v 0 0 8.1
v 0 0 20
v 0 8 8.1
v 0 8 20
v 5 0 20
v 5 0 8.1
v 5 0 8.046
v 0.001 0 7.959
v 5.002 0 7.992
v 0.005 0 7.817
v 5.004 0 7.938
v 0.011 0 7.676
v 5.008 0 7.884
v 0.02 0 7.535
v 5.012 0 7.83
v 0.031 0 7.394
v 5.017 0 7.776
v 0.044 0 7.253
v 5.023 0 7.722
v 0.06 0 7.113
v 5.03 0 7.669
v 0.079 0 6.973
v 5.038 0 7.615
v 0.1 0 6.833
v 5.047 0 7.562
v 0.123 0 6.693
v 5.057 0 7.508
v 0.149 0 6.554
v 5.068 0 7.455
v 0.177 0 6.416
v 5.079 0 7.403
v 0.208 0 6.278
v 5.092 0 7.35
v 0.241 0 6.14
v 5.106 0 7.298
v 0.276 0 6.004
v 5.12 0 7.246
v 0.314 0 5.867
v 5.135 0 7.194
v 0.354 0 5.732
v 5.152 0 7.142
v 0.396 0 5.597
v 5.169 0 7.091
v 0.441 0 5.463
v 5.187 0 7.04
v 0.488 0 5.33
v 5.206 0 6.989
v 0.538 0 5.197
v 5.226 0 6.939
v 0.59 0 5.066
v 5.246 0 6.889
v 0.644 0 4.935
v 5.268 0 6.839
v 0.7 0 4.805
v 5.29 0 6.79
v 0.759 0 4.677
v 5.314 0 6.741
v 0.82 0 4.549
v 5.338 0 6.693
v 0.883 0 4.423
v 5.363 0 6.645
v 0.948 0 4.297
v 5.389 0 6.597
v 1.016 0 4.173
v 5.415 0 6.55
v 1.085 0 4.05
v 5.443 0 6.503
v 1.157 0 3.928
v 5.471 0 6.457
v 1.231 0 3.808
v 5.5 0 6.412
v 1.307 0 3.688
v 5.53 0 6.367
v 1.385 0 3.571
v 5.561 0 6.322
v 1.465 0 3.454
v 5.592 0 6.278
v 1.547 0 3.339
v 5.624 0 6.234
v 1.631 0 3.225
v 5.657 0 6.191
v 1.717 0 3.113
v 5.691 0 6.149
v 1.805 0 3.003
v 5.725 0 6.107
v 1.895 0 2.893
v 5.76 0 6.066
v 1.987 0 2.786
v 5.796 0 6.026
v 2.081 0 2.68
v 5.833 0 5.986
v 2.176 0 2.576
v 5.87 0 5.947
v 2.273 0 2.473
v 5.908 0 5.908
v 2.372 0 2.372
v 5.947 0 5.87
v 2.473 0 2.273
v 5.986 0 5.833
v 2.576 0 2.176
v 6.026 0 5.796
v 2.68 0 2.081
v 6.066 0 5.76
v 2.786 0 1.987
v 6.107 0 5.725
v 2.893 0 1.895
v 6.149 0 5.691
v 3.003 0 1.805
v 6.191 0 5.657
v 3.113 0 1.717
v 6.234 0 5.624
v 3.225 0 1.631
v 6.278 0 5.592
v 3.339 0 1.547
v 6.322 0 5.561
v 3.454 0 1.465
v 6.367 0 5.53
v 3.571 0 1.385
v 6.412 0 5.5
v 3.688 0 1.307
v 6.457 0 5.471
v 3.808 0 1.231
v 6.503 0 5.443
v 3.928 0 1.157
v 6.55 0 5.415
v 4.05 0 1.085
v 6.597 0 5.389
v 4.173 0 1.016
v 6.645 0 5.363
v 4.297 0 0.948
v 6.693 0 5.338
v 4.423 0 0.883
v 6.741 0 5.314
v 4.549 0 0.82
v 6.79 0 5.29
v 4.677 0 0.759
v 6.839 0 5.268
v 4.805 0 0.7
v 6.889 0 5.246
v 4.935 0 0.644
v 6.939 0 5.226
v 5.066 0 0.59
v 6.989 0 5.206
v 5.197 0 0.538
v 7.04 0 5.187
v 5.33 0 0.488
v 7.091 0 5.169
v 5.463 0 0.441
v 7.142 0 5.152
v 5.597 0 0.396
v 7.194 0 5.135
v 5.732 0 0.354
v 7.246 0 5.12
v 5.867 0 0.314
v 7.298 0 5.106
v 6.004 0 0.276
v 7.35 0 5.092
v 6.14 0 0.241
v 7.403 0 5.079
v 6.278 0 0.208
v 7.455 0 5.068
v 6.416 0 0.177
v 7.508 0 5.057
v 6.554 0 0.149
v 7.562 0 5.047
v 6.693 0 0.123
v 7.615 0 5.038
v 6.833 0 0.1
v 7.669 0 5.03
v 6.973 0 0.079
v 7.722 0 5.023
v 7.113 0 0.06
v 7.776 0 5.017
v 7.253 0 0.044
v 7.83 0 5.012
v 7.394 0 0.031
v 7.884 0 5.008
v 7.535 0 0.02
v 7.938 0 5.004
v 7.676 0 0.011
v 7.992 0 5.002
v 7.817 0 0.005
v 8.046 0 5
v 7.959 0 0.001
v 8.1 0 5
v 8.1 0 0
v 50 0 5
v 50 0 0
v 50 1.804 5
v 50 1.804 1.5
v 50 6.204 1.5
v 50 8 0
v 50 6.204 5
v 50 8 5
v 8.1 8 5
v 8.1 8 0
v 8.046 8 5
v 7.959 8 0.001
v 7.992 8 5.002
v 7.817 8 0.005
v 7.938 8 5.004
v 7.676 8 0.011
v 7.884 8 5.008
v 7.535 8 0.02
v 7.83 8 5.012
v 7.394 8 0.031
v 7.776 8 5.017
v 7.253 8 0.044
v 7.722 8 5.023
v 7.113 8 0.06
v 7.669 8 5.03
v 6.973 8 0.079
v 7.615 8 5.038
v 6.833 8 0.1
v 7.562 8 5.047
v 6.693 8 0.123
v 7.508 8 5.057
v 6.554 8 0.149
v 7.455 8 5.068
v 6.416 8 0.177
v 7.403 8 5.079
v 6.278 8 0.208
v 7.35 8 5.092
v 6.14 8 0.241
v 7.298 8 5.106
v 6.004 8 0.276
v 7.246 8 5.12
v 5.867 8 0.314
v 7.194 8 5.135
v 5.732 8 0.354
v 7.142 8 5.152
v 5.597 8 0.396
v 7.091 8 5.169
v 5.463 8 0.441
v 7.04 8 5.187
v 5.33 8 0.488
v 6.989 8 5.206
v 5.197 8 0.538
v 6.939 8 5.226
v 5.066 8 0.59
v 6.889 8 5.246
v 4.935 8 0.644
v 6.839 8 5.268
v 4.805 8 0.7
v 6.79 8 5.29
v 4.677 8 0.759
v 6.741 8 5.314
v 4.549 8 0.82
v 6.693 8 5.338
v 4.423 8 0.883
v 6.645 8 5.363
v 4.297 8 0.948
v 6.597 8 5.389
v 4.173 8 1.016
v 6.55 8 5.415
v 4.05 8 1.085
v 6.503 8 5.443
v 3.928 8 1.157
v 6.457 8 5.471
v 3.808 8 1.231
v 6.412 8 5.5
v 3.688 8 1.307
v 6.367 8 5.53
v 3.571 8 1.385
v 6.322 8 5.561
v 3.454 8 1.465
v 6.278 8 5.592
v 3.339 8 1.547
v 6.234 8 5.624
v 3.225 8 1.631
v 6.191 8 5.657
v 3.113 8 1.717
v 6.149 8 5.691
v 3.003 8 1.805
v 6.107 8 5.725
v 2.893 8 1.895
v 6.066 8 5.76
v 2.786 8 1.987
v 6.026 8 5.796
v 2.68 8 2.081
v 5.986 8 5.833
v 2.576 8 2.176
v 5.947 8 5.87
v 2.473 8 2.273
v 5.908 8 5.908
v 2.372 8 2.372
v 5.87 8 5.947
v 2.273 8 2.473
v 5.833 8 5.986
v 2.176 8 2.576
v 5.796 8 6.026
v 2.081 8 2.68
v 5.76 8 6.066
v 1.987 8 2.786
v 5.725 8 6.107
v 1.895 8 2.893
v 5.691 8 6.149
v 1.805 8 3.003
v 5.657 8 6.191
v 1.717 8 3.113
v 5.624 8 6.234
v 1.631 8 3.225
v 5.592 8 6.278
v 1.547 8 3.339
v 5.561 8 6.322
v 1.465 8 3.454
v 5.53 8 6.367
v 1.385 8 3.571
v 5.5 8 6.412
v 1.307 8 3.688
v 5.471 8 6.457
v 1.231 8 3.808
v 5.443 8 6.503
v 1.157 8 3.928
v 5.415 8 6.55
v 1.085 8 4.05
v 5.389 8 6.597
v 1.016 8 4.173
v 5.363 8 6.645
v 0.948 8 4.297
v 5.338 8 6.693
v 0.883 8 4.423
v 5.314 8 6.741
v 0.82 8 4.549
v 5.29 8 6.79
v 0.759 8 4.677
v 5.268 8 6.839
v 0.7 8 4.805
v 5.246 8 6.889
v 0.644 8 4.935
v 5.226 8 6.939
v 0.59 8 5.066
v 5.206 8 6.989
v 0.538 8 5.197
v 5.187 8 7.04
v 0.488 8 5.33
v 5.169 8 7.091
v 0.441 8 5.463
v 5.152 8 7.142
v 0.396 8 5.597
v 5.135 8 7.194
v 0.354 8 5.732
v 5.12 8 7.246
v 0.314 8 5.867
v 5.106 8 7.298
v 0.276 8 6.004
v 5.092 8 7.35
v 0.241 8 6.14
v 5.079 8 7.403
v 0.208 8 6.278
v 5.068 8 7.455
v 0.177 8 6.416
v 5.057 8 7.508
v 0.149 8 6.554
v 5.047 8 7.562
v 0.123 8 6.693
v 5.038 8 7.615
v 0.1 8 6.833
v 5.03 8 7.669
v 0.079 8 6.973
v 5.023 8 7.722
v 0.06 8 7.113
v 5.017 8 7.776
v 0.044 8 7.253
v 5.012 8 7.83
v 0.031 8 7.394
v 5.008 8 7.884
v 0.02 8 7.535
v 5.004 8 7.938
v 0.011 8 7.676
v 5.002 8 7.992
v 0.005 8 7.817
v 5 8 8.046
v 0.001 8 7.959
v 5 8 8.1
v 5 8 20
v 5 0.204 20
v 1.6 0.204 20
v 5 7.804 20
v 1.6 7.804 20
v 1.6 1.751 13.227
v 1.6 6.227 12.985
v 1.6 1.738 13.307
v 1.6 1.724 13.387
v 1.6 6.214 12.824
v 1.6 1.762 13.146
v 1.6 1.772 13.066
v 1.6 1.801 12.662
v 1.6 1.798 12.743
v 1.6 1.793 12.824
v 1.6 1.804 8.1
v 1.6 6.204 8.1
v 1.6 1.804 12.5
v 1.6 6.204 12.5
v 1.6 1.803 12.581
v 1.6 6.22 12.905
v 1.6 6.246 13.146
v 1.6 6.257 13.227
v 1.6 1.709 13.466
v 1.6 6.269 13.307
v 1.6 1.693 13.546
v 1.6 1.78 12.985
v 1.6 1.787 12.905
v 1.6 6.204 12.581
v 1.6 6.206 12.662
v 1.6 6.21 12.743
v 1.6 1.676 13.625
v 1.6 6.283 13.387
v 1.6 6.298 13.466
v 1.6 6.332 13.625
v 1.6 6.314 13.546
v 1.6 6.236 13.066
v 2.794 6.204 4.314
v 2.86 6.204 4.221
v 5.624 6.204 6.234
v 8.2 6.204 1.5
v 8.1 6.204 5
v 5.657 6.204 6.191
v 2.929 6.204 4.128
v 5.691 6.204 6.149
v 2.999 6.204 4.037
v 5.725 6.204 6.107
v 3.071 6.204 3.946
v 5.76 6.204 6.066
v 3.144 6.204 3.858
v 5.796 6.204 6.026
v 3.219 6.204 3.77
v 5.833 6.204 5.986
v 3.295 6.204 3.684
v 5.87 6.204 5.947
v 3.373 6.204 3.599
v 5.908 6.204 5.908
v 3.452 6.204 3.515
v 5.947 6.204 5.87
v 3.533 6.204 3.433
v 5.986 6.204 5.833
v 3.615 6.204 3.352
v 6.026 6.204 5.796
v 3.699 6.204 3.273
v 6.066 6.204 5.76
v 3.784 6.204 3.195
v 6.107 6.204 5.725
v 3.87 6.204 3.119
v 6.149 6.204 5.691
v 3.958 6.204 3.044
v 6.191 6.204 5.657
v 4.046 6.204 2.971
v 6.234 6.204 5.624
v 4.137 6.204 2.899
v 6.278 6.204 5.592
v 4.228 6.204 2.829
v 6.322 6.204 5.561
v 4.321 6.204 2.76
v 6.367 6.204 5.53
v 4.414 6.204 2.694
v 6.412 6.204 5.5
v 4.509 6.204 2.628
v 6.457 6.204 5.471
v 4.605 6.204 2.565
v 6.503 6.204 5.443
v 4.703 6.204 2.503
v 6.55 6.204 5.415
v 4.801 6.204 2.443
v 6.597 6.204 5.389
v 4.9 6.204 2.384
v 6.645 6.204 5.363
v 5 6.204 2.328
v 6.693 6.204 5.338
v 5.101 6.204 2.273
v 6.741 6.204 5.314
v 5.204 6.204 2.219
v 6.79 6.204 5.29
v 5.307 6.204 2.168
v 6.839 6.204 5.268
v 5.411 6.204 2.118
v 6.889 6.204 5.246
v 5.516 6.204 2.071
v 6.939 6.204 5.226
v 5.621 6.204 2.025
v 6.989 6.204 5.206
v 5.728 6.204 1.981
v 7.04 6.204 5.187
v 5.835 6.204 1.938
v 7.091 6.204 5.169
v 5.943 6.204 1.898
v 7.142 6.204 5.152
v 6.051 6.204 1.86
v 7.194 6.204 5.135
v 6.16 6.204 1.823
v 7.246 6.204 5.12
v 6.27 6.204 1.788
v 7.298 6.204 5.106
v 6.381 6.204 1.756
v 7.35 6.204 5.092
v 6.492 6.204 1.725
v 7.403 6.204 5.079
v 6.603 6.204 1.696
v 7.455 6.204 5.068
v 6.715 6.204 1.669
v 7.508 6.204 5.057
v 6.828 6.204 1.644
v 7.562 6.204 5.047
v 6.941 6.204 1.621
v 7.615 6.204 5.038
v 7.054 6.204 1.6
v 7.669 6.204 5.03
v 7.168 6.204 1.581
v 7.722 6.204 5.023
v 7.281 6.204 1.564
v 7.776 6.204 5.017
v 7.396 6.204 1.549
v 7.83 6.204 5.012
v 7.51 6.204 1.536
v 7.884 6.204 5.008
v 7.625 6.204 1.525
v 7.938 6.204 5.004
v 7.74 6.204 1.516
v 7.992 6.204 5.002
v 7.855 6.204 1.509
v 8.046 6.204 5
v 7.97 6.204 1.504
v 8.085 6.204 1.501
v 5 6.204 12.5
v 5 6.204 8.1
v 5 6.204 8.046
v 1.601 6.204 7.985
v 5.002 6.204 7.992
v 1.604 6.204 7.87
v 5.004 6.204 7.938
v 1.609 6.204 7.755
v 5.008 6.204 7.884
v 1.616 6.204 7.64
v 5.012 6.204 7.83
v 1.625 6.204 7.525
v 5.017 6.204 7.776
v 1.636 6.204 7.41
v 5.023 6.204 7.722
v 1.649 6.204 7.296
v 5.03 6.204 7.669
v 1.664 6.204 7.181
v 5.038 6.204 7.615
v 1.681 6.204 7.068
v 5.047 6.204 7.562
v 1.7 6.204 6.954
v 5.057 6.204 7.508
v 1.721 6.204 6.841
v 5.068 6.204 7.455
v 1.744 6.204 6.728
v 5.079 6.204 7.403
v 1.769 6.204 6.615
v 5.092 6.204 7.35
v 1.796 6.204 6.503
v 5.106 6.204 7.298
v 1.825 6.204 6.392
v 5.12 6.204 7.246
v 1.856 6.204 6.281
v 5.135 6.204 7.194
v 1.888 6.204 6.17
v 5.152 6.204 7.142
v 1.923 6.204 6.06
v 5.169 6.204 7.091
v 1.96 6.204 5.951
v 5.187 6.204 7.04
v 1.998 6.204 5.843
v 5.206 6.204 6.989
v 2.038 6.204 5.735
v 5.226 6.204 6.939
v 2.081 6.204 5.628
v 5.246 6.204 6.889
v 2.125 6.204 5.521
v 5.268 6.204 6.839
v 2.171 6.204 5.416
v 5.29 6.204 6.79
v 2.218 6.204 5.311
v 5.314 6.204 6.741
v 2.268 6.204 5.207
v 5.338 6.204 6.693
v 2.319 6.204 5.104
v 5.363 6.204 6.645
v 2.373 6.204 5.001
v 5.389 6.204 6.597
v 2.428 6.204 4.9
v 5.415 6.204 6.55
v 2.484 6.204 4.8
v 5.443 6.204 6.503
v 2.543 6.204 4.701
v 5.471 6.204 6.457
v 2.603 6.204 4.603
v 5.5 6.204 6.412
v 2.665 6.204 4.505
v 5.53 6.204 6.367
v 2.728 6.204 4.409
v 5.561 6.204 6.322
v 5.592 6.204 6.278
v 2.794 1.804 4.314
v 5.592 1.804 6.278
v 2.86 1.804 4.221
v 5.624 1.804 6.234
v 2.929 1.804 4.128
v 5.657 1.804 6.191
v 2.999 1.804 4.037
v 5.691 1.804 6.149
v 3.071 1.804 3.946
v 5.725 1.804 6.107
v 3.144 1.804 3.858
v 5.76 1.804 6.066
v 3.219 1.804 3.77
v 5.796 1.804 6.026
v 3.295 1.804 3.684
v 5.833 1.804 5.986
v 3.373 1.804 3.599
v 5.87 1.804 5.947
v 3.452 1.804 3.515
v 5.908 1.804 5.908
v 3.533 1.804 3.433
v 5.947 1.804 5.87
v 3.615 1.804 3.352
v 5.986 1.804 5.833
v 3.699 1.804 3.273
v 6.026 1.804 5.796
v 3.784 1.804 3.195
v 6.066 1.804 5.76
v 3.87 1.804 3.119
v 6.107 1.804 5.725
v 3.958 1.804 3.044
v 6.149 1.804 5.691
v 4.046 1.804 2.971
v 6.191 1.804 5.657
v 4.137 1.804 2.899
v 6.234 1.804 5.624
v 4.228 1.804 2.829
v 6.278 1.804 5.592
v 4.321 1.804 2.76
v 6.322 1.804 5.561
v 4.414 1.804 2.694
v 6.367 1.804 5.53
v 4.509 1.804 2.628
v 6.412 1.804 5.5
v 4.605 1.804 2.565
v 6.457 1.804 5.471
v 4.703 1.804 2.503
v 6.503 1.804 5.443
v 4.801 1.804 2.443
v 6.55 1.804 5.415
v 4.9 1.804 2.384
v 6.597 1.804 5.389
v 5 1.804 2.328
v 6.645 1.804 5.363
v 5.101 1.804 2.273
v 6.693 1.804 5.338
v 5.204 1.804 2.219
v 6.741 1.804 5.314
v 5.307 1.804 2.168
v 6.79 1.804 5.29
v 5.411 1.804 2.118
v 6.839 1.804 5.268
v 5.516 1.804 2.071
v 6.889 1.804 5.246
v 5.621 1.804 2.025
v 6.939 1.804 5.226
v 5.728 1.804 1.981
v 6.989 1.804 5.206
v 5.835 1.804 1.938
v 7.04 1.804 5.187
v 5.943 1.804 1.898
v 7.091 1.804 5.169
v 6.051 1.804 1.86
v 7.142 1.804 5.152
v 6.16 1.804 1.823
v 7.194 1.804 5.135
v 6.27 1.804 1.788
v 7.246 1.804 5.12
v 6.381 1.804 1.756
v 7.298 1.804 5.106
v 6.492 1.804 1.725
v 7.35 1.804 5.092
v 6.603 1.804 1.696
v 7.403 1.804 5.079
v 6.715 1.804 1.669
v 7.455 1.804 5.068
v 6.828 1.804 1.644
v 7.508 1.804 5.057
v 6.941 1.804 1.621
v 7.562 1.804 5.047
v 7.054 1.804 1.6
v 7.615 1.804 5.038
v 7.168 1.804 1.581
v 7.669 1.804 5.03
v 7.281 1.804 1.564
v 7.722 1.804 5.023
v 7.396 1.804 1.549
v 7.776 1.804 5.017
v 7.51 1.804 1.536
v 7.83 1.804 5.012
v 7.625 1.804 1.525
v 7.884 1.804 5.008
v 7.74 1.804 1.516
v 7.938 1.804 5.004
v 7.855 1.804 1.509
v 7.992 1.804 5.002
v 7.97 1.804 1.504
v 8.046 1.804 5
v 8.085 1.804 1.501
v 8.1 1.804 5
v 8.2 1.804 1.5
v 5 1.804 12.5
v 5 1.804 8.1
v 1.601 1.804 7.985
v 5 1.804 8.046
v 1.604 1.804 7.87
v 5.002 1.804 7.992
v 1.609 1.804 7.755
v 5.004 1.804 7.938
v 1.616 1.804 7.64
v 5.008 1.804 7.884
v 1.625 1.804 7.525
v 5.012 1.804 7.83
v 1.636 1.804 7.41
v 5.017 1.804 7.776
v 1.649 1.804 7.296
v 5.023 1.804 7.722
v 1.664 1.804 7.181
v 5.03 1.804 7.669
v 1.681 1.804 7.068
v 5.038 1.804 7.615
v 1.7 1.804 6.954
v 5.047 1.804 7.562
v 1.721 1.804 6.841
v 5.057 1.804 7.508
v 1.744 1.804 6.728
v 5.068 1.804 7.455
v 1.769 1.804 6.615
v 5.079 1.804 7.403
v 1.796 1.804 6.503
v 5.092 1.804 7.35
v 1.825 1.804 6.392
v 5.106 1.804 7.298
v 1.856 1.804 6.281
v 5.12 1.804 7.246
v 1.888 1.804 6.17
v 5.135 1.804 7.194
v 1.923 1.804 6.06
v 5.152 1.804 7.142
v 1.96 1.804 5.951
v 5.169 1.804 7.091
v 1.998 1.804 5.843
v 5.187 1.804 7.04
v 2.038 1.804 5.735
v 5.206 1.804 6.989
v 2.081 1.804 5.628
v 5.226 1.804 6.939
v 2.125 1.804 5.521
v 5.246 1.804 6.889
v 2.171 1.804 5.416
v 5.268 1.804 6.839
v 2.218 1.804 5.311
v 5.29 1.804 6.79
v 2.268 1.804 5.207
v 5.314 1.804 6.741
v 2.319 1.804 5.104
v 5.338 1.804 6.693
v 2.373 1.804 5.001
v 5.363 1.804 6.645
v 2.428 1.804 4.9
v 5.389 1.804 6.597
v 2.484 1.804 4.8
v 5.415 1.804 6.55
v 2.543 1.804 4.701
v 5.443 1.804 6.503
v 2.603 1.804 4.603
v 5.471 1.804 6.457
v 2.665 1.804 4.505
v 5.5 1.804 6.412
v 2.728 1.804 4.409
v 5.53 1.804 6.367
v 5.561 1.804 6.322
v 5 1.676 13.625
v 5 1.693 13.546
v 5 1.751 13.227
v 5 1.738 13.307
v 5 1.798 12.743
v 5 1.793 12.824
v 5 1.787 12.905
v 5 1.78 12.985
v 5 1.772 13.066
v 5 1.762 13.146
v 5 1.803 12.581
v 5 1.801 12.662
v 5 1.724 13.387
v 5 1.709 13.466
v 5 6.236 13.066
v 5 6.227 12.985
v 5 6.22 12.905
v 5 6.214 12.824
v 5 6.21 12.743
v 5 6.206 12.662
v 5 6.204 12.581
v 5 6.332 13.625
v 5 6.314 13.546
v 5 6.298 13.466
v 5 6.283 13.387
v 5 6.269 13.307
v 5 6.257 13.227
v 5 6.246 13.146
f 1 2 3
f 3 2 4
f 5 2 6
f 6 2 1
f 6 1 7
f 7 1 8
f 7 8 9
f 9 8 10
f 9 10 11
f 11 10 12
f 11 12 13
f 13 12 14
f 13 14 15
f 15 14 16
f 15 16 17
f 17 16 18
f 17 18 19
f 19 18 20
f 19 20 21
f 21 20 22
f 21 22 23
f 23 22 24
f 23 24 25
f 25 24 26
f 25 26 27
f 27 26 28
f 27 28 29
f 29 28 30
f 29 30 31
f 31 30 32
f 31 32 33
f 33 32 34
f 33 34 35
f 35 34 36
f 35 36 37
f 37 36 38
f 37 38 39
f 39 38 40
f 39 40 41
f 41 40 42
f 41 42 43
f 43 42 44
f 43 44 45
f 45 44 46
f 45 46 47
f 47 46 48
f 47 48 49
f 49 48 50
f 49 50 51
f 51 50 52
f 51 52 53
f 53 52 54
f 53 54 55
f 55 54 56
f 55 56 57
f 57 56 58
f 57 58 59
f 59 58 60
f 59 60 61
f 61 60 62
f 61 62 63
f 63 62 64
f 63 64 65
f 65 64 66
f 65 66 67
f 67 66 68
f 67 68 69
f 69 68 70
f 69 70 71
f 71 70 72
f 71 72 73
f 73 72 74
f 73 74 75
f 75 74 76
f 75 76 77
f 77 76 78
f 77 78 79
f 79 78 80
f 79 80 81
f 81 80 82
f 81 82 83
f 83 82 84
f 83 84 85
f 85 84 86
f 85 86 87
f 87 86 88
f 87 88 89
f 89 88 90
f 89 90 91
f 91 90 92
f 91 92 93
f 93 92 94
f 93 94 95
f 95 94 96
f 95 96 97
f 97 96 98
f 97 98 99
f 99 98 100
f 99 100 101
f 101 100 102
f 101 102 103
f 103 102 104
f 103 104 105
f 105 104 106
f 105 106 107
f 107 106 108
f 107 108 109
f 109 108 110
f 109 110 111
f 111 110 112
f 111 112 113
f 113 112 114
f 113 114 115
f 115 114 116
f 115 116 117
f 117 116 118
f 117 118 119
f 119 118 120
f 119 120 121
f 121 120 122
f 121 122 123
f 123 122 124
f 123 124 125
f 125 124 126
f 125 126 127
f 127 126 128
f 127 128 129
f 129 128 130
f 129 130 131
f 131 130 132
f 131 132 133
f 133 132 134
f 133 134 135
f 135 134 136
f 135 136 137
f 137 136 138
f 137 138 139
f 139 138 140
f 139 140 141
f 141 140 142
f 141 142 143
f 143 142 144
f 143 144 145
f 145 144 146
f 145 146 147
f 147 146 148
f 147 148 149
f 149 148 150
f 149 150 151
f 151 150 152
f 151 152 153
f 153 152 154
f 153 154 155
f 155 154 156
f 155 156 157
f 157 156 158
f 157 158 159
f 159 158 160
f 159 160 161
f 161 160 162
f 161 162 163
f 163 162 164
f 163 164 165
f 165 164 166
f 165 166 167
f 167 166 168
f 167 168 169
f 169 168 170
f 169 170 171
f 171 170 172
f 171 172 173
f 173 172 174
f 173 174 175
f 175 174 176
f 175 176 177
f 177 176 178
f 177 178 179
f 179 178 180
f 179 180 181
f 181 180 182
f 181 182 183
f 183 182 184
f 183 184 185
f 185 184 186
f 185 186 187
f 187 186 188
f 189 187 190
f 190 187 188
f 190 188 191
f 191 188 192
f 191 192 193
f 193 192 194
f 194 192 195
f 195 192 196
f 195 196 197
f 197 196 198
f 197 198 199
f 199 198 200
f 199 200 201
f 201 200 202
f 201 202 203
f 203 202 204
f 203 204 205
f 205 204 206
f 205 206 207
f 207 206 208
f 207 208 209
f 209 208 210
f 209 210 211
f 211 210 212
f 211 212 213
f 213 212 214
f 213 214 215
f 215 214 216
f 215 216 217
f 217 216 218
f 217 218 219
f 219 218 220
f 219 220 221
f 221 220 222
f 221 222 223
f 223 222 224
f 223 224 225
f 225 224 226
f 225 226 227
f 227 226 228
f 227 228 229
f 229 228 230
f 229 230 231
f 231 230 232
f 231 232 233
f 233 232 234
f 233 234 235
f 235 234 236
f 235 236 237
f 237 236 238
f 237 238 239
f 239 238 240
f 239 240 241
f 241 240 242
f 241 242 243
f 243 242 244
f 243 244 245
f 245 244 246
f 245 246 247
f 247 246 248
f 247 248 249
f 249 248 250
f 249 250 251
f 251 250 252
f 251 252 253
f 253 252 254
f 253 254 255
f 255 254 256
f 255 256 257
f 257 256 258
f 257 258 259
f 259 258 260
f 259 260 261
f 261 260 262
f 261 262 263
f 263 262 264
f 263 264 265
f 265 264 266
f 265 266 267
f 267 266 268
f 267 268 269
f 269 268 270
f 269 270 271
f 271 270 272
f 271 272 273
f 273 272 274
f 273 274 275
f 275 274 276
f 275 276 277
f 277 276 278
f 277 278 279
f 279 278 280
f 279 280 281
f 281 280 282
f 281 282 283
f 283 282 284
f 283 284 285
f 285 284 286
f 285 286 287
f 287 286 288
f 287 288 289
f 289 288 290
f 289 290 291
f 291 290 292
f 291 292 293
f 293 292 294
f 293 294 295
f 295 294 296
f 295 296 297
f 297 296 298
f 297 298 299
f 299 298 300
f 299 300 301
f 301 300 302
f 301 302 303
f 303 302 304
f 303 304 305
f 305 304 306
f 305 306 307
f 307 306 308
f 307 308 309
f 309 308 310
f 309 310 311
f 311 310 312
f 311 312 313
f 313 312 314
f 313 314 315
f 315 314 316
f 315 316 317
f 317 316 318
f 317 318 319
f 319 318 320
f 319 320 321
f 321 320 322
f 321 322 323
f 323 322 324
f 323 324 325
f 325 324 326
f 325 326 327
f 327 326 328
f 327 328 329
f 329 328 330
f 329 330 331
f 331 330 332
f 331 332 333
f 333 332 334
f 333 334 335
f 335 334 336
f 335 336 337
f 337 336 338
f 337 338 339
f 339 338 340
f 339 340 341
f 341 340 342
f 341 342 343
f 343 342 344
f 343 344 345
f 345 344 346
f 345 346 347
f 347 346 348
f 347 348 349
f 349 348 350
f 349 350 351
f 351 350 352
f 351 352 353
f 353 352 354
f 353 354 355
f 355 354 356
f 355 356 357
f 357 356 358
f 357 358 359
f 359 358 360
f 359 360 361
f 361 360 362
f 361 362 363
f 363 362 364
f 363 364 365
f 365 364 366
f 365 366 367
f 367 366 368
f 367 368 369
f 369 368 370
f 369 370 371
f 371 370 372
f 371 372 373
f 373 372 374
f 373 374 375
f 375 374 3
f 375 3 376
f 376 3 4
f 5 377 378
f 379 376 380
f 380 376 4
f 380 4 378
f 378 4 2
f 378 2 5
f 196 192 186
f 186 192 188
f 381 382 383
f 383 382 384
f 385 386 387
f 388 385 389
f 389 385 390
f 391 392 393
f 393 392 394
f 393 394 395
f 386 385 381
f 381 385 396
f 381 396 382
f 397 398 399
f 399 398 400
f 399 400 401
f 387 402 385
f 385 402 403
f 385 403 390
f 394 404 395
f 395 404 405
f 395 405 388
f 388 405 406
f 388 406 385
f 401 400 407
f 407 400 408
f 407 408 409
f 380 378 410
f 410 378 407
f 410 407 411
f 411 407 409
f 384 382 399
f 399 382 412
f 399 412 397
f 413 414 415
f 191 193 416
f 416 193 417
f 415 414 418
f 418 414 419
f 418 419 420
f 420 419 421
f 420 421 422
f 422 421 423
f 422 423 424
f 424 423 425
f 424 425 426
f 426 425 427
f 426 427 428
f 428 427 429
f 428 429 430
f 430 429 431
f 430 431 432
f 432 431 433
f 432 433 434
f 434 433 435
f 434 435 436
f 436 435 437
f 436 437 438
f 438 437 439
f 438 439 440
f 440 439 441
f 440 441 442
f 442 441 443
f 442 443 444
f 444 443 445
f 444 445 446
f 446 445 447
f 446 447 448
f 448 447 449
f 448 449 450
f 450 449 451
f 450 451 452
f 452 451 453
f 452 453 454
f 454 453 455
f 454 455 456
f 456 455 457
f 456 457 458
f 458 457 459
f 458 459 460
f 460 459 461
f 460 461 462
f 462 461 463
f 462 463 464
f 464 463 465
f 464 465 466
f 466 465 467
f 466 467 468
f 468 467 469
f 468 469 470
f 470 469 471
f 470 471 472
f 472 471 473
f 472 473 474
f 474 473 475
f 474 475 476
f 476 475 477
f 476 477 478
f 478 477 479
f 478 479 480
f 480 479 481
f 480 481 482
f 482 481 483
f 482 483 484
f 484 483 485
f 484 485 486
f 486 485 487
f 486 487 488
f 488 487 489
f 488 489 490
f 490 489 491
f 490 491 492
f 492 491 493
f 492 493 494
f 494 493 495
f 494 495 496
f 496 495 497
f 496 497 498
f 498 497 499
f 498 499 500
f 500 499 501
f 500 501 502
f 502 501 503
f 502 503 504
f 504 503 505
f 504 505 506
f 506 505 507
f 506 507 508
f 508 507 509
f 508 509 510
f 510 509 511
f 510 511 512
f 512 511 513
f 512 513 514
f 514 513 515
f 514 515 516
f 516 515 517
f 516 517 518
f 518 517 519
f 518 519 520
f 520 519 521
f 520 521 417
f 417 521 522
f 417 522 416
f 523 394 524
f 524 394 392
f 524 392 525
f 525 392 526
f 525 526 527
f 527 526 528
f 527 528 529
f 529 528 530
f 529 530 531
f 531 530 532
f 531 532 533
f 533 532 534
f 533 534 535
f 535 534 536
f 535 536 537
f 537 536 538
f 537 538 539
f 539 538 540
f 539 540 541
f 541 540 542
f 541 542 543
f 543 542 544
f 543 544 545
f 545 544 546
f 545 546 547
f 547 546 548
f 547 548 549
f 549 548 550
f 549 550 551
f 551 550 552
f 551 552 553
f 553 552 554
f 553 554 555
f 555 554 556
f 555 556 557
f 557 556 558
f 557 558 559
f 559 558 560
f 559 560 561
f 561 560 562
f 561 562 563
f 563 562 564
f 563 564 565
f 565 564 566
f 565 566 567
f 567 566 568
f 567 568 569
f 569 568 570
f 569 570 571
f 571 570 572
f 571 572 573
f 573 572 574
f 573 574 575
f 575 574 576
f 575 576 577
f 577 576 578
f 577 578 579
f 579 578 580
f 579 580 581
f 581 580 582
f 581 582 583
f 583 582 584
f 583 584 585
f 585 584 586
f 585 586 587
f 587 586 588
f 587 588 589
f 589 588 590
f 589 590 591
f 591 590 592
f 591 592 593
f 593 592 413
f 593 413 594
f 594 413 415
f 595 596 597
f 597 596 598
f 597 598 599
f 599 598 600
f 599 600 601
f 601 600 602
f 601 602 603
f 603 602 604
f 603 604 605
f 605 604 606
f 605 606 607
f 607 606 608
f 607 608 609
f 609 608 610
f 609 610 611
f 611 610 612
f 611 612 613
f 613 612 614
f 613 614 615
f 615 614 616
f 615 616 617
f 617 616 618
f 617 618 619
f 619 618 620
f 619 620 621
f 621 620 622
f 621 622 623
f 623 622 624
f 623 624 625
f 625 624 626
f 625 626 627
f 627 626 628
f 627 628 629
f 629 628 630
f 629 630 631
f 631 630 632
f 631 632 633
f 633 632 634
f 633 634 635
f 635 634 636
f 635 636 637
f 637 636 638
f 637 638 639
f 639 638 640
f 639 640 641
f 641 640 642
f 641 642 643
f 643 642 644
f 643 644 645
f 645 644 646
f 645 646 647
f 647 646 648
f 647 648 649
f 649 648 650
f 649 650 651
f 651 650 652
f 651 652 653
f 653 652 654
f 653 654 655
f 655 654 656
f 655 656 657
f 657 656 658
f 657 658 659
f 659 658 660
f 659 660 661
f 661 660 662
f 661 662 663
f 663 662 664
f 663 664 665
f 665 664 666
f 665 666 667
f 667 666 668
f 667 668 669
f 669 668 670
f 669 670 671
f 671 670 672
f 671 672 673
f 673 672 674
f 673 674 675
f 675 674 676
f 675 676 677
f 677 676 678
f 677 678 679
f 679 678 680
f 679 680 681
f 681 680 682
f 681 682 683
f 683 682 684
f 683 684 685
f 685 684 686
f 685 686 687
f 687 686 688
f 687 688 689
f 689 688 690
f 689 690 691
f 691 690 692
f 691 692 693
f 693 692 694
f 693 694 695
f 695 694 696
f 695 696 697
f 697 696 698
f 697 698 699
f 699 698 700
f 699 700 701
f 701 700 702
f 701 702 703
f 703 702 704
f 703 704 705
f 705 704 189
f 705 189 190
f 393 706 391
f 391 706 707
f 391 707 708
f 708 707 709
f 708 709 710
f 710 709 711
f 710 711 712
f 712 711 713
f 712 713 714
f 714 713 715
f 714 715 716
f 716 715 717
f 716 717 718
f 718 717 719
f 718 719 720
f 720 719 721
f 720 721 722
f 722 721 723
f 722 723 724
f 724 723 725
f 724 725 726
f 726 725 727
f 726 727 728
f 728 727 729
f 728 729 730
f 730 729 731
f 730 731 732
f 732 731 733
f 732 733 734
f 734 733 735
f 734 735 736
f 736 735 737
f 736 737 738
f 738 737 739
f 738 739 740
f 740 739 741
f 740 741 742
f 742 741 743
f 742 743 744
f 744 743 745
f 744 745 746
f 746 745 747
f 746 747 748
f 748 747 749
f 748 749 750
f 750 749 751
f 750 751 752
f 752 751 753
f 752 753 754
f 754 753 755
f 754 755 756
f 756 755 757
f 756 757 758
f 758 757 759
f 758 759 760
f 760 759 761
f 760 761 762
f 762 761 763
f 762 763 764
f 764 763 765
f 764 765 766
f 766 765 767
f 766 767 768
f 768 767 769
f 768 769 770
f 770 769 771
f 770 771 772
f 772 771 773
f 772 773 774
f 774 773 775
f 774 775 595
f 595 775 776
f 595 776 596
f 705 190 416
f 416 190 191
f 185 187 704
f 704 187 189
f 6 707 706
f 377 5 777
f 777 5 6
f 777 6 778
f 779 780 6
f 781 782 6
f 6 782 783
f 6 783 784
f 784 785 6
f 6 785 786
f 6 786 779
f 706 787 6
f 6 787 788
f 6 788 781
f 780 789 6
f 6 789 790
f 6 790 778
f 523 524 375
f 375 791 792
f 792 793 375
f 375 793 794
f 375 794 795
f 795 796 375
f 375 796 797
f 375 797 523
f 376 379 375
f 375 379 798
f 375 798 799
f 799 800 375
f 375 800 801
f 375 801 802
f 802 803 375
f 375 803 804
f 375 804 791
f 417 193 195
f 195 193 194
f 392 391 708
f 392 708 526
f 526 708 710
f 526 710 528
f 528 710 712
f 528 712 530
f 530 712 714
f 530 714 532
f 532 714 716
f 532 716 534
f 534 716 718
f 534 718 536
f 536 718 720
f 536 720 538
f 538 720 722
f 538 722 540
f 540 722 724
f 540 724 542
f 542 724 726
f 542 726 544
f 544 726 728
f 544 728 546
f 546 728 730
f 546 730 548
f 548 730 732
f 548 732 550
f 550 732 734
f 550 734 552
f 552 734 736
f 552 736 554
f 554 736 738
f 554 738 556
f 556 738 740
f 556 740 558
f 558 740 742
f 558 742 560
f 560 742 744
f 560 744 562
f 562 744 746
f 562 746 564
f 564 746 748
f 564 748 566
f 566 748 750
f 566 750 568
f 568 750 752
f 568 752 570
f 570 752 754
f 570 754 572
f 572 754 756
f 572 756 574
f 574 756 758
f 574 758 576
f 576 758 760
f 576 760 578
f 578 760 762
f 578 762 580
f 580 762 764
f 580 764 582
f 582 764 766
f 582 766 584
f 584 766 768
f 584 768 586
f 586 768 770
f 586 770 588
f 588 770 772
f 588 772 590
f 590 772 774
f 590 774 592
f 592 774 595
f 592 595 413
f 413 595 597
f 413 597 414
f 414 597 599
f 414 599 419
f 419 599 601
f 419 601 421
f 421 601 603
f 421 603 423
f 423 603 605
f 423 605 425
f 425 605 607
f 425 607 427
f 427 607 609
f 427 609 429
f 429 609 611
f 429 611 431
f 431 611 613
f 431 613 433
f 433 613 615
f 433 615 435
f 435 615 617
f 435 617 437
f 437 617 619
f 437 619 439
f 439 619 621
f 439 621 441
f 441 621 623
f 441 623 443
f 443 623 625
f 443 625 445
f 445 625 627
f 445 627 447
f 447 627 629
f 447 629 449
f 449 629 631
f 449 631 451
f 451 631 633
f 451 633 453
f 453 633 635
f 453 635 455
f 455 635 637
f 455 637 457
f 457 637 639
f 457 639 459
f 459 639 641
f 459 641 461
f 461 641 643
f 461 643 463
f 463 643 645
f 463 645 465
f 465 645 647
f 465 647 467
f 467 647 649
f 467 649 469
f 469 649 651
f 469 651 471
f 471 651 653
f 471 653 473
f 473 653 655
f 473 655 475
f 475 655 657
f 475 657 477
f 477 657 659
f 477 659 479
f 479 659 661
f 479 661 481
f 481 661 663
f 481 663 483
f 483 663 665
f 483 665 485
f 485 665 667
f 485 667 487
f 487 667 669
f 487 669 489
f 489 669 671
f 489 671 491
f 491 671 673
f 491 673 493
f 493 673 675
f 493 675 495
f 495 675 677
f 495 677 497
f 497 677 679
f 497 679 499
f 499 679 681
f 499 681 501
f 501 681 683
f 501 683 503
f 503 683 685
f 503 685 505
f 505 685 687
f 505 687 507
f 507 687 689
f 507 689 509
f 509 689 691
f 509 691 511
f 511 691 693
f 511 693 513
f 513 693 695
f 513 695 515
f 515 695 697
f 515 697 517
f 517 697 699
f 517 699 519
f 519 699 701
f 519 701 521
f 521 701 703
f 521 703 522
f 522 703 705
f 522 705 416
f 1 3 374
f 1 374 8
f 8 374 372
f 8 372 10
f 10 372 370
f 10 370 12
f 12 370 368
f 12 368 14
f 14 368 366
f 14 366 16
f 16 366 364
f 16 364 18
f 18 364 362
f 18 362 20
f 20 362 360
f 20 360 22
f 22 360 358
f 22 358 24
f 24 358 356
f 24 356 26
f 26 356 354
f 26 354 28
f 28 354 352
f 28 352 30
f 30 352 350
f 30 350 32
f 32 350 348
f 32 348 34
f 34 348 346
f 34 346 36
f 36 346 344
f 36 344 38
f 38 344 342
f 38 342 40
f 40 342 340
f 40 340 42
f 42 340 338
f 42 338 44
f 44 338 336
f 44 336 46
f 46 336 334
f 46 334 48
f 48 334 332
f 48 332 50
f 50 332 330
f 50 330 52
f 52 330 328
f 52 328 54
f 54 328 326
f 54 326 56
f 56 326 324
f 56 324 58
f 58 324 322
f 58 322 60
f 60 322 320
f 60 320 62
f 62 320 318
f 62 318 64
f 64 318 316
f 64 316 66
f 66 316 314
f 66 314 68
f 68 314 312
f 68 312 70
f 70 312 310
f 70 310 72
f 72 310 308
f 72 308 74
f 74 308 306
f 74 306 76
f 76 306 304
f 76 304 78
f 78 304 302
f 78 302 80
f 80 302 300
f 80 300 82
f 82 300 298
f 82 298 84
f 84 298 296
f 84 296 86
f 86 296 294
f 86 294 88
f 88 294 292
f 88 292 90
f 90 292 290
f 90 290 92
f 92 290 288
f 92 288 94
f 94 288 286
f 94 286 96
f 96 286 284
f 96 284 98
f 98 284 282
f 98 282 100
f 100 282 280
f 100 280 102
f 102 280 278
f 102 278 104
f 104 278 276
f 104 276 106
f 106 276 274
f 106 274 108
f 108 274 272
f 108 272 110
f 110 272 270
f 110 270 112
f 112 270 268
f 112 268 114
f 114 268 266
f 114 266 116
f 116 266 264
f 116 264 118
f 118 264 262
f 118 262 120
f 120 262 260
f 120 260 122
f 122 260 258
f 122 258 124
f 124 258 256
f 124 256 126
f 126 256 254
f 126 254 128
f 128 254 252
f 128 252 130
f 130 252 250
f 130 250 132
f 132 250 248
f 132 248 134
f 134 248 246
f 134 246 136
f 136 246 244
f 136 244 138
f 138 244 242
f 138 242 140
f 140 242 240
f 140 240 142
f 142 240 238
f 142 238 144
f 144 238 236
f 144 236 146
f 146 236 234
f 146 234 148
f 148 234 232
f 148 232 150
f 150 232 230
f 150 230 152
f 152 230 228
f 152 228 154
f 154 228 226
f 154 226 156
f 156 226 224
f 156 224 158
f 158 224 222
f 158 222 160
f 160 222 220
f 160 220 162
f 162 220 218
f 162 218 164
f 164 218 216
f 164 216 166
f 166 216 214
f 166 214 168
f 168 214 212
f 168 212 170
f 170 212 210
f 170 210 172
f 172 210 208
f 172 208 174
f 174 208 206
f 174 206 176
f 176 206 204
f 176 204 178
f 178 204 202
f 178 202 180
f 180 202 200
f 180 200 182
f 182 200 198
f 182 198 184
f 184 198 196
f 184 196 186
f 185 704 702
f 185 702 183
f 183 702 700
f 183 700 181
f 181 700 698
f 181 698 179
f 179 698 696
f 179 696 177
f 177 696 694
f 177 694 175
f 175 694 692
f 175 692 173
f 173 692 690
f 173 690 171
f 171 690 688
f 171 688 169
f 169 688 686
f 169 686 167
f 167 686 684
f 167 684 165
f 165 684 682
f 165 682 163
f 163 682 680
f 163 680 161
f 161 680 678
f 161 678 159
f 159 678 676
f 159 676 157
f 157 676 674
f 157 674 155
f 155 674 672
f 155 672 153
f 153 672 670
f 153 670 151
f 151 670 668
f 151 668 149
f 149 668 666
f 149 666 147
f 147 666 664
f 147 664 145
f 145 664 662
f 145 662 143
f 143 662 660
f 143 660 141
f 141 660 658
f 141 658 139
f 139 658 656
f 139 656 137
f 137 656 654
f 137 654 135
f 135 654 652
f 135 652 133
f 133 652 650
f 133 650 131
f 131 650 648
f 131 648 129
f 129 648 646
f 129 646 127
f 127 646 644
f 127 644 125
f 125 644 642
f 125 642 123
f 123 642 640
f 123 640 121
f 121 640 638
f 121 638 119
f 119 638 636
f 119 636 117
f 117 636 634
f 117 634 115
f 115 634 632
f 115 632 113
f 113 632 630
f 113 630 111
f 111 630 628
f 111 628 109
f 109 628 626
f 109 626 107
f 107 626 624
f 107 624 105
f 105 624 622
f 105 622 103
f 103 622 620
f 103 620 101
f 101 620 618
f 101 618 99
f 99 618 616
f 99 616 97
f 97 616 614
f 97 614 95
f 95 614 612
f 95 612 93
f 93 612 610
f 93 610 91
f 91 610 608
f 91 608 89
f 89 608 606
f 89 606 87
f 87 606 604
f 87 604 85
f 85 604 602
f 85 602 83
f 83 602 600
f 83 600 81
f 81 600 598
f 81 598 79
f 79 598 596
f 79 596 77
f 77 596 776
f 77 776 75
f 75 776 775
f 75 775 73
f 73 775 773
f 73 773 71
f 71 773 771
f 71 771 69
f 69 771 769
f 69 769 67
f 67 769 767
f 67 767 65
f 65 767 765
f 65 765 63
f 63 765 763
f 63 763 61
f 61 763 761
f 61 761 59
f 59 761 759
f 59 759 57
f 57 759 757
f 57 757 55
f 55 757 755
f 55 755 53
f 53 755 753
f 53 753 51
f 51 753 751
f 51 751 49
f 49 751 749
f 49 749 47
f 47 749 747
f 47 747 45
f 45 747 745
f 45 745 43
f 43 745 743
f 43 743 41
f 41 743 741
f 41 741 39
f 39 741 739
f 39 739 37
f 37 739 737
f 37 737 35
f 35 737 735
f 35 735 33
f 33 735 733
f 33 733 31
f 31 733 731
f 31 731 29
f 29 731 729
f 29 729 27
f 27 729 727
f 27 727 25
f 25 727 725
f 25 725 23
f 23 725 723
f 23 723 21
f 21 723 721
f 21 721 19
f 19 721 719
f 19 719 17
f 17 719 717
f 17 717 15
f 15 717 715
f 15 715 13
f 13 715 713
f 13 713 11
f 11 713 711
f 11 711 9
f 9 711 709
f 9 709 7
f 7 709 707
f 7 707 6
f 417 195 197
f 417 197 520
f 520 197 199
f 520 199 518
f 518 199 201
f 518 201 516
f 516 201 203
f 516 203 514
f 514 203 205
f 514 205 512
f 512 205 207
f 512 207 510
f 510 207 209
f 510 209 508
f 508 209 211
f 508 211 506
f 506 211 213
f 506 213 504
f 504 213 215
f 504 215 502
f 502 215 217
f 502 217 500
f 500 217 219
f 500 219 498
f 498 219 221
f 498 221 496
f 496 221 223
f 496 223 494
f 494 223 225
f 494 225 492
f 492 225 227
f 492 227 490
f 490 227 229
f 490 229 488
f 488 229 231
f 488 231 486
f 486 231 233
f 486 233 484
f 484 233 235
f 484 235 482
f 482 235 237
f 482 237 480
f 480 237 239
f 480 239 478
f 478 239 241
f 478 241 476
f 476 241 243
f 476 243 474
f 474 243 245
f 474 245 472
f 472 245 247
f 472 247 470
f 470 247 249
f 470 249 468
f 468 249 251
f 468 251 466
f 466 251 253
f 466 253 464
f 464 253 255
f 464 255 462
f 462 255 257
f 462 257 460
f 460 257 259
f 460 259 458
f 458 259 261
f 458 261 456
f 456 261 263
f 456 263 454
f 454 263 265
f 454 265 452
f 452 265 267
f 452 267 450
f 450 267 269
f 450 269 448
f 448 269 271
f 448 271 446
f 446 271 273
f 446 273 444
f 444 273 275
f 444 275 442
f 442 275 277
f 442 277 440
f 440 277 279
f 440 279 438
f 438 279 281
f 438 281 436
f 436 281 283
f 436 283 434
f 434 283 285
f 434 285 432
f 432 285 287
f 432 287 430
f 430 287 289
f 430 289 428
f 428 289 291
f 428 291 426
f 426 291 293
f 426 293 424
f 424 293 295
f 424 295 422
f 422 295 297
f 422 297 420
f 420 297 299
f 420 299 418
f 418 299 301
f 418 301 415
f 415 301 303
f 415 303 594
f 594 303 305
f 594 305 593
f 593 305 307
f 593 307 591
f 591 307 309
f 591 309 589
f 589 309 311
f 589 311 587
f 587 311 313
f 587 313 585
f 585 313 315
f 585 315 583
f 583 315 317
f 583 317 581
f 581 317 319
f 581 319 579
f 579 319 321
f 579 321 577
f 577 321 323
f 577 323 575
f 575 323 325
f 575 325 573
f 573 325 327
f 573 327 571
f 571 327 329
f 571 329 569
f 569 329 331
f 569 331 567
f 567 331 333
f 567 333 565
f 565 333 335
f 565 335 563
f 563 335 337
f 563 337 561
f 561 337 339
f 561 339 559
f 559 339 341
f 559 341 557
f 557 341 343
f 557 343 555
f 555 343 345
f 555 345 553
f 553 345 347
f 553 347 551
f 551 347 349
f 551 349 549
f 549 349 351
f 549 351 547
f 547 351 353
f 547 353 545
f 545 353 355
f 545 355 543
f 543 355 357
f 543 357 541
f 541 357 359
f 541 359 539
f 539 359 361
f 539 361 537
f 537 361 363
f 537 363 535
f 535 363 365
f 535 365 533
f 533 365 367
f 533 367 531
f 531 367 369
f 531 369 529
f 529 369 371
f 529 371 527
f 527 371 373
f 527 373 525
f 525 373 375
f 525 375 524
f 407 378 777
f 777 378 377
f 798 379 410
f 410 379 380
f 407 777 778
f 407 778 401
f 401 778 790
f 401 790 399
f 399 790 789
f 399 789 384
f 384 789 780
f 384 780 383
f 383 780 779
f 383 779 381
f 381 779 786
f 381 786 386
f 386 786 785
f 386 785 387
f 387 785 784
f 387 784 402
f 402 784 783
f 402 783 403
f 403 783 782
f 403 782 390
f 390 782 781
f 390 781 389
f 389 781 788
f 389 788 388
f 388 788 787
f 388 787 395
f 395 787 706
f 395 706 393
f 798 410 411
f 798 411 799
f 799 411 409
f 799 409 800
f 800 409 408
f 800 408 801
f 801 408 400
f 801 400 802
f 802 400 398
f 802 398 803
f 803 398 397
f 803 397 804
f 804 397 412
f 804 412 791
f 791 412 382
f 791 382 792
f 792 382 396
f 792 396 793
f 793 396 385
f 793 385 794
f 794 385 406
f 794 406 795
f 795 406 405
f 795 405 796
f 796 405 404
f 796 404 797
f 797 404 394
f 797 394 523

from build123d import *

# Parameters (mm, degrees)
SKETCH1_W           = 50
SKETCH1_H           = 8
BOSS_EXTRUDE1_DEPTH = 20
SKETCH2_W           = 48.4
SKETCH2_H           = 4.4
CUT_EXTRUDE1_DEPTH  = 18.5
SKETCH3_W           = 45
SKETCH3_H           = 15
CUT_EXTRUDE2_DEPTH  = 18
FILLET1_R           = 6.6
FILLET2_R           = 8.1
FILLET3_R           = 3.1
CHAMFER1_SIZE       = 1.6
CHAMFER1_SIZE2      = 6.930361399
FILLET4_R           = 5


with BuildPart() as part:
    # Sketch1 → Boss-Extrude1 (new body)
    with BuildSketch(Plane.XY):
        with Locations((25, 4)):
            Rectangle(SKETCH1_W, SKETCH1_H)
    extrude(amount=BOSS_EXTRUDE1_DEPTH)

    # Sketch2 → Cut-Extrude1 (cut)
    with BuildSketch(Plane.XY.offset(20)):
        with Locations((25.8, 4.003663633)):
            Rectangle(SKETCH2_W, SKETCH2_H)
    extrude(amount=-CUT_EXTRUDE1_DEPTH, mode=Mode.SUBTRACT)

    # Sketch3 → Cut-Extrude2 (cut)
    with BuildSketch(Plane(origin=(0, 0, 0), x_dir=(-1, 0, 0), z_dir=(0, -1, 0))):
        with Locations((-27.5, -12.5)):
            Rectangle(SKETCH3_W, SKETCH3_H)
    extrude(amount=-CUT_EXTRUDE2_DEPTH, mode=Mode.SUBTRACT)

    # Fillet1
    fillet1_edges = [part.edges().sort_by_distance(p)[0] for p in [
        (1.6, 4.003663633, 1.5),
    ]]
    fillet(fillet1_edges, radius=FILLET1_R)

    # Fillet2
    fillet2_edges = [part.edges().sort_by_distance(p)[0] for p in [
        (0, 4, 0),
    ]]
    fillet(fillet2_edges, radius=FILLET2_R)

    # Fillet3
    fillet3_edges = [part.edges().sort_by_distance(p)[0] for p in [
        (5, 7.101831816, 5),
        (5, 0.901831816, 5),
    ]]
    fillet(fillet3_edges, radius=FILLET3_R)

    # Chamfer1
    chamfer1_edges = [part.edges().sort_by_distance(p)[0] for p in [
        (3.3, 1.803663633, 20),
        (3.3, 6.203663633, 20),
    ]]
    chamfer1_side = [part.faces().sort_by_distance(p)[0] for p in [
        (2.5, 7.905660189, 20),
    ]]
    chamfer(chamfer1_edges, length=CHAMFER1_SIZE, length2=CHAMFER1_SIZE2, reference=chamfer1_side[0])

    # Fillet4
    fillet4_edges = [part.edges().sort_by_distance(p)[0] for p in [
        (3.3, 1.803663633, 13.069638601),
        (3.3, 6.203663633, 13.069638601),
    ]]
    fillet(fillet4_edges, radius=FILLET4_R)


solid = part.part
